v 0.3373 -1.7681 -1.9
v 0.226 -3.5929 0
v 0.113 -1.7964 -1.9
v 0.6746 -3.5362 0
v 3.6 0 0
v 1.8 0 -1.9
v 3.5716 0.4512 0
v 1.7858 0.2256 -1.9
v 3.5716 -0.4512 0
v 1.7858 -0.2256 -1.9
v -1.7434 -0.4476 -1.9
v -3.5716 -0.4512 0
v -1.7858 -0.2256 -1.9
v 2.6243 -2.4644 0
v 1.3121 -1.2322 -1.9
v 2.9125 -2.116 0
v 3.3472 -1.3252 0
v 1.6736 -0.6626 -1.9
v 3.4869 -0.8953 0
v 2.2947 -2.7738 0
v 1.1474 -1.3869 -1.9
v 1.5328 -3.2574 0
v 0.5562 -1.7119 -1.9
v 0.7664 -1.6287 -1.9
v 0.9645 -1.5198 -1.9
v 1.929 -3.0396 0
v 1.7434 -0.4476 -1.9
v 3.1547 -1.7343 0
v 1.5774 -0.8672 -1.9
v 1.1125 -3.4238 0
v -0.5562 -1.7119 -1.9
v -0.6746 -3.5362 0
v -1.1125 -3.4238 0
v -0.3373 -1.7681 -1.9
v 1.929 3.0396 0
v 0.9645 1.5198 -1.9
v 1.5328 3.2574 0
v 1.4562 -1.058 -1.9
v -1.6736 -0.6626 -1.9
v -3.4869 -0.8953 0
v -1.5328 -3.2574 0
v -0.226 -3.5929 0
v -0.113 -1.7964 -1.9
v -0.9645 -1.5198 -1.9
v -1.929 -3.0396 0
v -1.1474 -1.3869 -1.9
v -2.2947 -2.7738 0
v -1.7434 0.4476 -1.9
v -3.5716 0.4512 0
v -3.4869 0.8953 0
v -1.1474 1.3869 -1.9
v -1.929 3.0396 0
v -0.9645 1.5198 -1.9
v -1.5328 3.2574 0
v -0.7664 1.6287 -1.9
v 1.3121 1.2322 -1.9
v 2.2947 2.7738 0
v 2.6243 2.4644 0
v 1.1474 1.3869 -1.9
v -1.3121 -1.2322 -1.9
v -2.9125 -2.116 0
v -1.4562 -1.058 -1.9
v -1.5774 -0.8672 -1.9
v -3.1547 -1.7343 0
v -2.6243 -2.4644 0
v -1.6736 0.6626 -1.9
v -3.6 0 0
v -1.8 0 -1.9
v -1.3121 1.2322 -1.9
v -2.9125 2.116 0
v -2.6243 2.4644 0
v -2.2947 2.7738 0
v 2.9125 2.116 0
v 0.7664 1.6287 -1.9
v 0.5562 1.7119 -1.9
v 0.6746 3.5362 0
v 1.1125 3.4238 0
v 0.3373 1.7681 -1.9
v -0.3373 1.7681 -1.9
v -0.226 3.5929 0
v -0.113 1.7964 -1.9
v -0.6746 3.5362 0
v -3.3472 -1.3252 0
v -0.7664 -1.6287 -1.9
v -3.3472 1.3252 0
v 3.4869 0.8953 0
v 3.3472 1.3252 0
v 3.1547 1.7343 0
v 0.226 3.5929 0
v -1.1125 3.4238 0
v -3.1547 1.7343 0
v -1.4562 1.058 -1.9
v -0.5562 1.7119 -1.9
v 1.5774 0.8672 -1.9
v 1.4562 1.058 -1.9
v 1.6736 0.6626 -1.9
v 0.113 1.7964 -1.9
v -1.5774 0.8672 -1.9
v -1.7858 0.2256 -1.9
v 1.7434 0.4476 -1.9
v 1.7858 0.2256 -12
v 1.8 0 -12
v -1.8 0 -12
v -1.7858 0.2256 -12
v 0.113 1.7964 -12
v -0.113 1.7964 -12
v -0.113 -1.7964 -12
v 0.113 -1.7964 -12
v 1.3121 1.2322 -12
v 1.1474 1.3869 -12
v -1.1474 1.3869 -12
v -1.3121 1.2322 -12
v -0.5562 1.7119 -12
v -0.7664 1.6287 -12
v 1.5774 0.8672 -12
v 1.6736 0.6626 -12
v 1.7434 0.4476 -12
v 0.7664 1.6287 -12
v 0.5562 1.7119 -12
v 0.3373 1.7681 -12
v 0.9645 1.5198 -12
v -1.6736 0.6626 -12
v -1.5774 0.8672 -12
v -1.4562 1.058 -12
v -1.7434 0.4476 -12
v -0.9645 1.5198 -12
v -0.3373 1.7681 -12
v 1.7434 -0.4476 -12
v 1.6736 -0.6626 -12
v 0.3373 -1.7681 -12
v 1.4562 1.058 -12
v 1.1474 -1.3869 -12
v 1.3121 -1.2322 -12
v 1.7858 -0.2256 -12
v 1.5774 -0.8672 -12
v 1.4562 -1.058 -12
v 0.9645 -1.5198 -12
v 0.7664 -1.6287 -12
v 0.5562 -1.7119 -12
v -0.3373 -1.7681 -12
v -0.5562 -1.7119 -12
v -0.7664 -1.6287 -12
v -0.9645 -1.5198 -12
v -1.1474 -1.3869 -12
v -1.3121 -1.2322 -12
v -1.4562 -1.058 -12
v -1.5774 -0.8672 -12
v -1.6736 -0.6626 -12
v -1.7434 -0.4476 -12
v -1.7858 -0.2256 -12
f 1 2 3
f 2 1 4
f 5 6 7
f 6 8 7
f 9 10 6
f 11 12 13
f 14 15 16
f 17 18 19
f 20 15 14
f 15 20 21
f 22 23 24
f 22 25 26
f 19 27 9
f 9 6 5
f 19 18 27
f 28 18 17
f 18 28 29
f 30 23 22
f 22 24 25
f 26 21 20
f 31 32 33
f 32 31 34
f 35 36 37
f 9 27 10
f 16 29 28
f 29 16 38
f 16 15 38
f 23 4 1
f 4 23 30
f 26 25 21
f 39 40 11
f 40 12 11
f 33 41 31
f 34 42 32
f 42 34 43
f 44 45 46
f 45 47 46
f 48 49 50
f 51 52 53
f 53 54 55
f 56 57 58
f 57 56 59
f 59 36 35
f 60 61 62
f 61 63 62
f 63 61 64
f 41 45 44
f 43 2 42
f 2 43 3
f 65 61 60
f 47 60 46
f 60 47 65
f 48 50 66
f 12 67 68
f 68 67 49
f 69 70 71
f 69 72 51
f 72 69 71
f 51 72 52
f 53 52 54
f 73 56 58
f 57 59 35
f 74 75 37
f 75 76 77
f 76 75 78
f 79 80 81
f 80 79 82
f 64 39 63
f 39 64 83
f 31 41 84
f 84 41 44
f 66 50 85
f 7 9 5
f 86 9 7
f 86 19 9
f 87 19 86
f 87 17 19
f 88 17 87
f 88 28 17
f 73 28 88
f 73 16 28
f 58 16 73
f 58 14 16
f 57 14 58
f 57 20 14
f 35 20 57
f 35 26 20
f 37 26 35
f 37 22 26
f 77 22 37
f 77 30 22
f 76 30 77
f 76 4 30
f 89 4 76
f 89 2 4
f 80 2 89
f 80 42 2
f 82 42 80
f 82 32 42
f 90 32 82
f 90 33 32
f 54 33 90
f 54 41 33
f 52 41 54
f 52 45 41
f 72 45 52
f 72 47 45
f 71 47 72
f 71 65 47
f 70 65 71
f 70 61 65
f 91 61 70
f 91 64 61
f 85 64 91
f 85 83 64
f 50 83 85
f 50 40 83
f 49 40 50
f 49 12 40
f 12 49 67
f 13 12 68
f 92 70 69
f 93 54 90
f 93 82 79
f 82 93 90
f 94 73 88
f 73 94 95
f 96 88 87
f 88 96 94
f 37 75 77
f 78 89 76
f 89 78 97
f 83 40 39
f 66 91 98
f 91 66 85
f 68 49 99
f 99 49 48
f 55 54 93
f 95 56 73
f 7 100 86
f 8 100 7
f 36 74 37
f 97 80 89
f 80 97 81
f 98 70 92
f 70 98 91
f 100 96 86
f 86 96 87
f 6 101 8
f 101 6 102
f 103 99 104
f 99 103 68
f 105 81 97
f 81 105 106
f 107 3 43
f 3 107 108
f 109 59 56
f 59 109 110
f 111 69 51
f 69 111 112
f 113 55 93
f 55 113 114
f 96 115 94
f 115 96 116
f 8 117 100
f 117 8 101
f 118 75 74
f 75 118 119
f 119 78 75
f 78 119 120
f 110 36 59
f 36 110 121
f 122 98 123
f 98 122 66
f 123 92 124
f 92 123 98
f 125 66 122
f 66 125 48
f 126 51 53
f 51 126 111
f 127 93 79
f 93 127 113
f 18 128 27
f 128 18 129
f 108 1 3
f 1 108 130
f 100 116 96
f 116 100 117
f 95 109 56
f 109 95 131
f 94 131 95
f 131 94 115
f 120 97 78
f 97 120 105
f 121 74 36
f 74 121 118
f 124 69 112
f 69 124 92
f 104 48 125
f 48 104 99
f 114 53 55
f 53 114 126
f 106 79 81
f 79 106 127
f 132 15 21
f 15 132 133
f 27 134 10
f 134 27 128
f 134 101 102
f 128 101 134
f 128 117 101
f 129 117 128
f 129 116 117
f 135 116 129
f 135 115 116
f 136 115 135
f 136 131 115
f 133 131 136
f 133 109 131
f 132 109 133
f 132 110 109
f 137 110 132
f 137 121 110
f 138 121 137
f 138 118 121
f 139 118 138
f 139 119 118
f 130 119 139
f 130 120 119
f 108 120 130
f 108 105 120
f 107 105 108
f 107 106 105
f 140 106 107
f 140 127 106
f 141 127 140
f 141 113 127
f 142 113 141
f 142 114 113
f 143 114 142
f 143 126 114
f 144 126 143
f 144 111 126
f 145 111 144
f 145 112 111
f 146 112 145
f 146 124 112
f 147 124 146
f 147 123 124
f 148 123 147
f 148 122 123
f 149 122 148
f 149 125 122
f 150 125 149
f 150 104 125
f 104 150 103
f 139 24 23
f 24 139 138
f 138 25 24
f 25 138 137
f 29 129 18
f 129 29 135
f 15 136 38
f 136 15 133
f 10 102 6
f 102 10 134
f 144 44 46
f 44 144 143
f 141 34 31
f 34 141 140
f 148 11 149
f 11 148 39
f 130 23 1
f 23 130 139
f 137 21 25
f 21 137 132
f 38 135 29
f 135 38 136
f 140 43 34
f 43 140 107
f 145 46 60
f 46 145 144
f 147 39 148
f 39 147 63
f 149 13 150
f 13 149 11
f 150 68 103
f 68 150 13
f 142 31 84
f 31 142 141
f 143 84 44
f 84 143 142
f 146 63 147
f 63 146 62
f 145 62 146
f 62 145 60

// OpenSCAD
$fn = 50;


difference() {
	union() {
		translate(v = [0, 0, -1.9000000000]) {
			rotate(a = [0, 0, 0]) {
				cylinder(h = 1.9000000000, r1 = 1.8000000000, r2 = 3.6000000000);
			}
		}
		translate(v = [0, 0, -12]) {
			rotate(a = [0, 0, 0]) {
				cylinder(h = 12, r = 1.8000000000);
			}
		}
	}
	union();
}
